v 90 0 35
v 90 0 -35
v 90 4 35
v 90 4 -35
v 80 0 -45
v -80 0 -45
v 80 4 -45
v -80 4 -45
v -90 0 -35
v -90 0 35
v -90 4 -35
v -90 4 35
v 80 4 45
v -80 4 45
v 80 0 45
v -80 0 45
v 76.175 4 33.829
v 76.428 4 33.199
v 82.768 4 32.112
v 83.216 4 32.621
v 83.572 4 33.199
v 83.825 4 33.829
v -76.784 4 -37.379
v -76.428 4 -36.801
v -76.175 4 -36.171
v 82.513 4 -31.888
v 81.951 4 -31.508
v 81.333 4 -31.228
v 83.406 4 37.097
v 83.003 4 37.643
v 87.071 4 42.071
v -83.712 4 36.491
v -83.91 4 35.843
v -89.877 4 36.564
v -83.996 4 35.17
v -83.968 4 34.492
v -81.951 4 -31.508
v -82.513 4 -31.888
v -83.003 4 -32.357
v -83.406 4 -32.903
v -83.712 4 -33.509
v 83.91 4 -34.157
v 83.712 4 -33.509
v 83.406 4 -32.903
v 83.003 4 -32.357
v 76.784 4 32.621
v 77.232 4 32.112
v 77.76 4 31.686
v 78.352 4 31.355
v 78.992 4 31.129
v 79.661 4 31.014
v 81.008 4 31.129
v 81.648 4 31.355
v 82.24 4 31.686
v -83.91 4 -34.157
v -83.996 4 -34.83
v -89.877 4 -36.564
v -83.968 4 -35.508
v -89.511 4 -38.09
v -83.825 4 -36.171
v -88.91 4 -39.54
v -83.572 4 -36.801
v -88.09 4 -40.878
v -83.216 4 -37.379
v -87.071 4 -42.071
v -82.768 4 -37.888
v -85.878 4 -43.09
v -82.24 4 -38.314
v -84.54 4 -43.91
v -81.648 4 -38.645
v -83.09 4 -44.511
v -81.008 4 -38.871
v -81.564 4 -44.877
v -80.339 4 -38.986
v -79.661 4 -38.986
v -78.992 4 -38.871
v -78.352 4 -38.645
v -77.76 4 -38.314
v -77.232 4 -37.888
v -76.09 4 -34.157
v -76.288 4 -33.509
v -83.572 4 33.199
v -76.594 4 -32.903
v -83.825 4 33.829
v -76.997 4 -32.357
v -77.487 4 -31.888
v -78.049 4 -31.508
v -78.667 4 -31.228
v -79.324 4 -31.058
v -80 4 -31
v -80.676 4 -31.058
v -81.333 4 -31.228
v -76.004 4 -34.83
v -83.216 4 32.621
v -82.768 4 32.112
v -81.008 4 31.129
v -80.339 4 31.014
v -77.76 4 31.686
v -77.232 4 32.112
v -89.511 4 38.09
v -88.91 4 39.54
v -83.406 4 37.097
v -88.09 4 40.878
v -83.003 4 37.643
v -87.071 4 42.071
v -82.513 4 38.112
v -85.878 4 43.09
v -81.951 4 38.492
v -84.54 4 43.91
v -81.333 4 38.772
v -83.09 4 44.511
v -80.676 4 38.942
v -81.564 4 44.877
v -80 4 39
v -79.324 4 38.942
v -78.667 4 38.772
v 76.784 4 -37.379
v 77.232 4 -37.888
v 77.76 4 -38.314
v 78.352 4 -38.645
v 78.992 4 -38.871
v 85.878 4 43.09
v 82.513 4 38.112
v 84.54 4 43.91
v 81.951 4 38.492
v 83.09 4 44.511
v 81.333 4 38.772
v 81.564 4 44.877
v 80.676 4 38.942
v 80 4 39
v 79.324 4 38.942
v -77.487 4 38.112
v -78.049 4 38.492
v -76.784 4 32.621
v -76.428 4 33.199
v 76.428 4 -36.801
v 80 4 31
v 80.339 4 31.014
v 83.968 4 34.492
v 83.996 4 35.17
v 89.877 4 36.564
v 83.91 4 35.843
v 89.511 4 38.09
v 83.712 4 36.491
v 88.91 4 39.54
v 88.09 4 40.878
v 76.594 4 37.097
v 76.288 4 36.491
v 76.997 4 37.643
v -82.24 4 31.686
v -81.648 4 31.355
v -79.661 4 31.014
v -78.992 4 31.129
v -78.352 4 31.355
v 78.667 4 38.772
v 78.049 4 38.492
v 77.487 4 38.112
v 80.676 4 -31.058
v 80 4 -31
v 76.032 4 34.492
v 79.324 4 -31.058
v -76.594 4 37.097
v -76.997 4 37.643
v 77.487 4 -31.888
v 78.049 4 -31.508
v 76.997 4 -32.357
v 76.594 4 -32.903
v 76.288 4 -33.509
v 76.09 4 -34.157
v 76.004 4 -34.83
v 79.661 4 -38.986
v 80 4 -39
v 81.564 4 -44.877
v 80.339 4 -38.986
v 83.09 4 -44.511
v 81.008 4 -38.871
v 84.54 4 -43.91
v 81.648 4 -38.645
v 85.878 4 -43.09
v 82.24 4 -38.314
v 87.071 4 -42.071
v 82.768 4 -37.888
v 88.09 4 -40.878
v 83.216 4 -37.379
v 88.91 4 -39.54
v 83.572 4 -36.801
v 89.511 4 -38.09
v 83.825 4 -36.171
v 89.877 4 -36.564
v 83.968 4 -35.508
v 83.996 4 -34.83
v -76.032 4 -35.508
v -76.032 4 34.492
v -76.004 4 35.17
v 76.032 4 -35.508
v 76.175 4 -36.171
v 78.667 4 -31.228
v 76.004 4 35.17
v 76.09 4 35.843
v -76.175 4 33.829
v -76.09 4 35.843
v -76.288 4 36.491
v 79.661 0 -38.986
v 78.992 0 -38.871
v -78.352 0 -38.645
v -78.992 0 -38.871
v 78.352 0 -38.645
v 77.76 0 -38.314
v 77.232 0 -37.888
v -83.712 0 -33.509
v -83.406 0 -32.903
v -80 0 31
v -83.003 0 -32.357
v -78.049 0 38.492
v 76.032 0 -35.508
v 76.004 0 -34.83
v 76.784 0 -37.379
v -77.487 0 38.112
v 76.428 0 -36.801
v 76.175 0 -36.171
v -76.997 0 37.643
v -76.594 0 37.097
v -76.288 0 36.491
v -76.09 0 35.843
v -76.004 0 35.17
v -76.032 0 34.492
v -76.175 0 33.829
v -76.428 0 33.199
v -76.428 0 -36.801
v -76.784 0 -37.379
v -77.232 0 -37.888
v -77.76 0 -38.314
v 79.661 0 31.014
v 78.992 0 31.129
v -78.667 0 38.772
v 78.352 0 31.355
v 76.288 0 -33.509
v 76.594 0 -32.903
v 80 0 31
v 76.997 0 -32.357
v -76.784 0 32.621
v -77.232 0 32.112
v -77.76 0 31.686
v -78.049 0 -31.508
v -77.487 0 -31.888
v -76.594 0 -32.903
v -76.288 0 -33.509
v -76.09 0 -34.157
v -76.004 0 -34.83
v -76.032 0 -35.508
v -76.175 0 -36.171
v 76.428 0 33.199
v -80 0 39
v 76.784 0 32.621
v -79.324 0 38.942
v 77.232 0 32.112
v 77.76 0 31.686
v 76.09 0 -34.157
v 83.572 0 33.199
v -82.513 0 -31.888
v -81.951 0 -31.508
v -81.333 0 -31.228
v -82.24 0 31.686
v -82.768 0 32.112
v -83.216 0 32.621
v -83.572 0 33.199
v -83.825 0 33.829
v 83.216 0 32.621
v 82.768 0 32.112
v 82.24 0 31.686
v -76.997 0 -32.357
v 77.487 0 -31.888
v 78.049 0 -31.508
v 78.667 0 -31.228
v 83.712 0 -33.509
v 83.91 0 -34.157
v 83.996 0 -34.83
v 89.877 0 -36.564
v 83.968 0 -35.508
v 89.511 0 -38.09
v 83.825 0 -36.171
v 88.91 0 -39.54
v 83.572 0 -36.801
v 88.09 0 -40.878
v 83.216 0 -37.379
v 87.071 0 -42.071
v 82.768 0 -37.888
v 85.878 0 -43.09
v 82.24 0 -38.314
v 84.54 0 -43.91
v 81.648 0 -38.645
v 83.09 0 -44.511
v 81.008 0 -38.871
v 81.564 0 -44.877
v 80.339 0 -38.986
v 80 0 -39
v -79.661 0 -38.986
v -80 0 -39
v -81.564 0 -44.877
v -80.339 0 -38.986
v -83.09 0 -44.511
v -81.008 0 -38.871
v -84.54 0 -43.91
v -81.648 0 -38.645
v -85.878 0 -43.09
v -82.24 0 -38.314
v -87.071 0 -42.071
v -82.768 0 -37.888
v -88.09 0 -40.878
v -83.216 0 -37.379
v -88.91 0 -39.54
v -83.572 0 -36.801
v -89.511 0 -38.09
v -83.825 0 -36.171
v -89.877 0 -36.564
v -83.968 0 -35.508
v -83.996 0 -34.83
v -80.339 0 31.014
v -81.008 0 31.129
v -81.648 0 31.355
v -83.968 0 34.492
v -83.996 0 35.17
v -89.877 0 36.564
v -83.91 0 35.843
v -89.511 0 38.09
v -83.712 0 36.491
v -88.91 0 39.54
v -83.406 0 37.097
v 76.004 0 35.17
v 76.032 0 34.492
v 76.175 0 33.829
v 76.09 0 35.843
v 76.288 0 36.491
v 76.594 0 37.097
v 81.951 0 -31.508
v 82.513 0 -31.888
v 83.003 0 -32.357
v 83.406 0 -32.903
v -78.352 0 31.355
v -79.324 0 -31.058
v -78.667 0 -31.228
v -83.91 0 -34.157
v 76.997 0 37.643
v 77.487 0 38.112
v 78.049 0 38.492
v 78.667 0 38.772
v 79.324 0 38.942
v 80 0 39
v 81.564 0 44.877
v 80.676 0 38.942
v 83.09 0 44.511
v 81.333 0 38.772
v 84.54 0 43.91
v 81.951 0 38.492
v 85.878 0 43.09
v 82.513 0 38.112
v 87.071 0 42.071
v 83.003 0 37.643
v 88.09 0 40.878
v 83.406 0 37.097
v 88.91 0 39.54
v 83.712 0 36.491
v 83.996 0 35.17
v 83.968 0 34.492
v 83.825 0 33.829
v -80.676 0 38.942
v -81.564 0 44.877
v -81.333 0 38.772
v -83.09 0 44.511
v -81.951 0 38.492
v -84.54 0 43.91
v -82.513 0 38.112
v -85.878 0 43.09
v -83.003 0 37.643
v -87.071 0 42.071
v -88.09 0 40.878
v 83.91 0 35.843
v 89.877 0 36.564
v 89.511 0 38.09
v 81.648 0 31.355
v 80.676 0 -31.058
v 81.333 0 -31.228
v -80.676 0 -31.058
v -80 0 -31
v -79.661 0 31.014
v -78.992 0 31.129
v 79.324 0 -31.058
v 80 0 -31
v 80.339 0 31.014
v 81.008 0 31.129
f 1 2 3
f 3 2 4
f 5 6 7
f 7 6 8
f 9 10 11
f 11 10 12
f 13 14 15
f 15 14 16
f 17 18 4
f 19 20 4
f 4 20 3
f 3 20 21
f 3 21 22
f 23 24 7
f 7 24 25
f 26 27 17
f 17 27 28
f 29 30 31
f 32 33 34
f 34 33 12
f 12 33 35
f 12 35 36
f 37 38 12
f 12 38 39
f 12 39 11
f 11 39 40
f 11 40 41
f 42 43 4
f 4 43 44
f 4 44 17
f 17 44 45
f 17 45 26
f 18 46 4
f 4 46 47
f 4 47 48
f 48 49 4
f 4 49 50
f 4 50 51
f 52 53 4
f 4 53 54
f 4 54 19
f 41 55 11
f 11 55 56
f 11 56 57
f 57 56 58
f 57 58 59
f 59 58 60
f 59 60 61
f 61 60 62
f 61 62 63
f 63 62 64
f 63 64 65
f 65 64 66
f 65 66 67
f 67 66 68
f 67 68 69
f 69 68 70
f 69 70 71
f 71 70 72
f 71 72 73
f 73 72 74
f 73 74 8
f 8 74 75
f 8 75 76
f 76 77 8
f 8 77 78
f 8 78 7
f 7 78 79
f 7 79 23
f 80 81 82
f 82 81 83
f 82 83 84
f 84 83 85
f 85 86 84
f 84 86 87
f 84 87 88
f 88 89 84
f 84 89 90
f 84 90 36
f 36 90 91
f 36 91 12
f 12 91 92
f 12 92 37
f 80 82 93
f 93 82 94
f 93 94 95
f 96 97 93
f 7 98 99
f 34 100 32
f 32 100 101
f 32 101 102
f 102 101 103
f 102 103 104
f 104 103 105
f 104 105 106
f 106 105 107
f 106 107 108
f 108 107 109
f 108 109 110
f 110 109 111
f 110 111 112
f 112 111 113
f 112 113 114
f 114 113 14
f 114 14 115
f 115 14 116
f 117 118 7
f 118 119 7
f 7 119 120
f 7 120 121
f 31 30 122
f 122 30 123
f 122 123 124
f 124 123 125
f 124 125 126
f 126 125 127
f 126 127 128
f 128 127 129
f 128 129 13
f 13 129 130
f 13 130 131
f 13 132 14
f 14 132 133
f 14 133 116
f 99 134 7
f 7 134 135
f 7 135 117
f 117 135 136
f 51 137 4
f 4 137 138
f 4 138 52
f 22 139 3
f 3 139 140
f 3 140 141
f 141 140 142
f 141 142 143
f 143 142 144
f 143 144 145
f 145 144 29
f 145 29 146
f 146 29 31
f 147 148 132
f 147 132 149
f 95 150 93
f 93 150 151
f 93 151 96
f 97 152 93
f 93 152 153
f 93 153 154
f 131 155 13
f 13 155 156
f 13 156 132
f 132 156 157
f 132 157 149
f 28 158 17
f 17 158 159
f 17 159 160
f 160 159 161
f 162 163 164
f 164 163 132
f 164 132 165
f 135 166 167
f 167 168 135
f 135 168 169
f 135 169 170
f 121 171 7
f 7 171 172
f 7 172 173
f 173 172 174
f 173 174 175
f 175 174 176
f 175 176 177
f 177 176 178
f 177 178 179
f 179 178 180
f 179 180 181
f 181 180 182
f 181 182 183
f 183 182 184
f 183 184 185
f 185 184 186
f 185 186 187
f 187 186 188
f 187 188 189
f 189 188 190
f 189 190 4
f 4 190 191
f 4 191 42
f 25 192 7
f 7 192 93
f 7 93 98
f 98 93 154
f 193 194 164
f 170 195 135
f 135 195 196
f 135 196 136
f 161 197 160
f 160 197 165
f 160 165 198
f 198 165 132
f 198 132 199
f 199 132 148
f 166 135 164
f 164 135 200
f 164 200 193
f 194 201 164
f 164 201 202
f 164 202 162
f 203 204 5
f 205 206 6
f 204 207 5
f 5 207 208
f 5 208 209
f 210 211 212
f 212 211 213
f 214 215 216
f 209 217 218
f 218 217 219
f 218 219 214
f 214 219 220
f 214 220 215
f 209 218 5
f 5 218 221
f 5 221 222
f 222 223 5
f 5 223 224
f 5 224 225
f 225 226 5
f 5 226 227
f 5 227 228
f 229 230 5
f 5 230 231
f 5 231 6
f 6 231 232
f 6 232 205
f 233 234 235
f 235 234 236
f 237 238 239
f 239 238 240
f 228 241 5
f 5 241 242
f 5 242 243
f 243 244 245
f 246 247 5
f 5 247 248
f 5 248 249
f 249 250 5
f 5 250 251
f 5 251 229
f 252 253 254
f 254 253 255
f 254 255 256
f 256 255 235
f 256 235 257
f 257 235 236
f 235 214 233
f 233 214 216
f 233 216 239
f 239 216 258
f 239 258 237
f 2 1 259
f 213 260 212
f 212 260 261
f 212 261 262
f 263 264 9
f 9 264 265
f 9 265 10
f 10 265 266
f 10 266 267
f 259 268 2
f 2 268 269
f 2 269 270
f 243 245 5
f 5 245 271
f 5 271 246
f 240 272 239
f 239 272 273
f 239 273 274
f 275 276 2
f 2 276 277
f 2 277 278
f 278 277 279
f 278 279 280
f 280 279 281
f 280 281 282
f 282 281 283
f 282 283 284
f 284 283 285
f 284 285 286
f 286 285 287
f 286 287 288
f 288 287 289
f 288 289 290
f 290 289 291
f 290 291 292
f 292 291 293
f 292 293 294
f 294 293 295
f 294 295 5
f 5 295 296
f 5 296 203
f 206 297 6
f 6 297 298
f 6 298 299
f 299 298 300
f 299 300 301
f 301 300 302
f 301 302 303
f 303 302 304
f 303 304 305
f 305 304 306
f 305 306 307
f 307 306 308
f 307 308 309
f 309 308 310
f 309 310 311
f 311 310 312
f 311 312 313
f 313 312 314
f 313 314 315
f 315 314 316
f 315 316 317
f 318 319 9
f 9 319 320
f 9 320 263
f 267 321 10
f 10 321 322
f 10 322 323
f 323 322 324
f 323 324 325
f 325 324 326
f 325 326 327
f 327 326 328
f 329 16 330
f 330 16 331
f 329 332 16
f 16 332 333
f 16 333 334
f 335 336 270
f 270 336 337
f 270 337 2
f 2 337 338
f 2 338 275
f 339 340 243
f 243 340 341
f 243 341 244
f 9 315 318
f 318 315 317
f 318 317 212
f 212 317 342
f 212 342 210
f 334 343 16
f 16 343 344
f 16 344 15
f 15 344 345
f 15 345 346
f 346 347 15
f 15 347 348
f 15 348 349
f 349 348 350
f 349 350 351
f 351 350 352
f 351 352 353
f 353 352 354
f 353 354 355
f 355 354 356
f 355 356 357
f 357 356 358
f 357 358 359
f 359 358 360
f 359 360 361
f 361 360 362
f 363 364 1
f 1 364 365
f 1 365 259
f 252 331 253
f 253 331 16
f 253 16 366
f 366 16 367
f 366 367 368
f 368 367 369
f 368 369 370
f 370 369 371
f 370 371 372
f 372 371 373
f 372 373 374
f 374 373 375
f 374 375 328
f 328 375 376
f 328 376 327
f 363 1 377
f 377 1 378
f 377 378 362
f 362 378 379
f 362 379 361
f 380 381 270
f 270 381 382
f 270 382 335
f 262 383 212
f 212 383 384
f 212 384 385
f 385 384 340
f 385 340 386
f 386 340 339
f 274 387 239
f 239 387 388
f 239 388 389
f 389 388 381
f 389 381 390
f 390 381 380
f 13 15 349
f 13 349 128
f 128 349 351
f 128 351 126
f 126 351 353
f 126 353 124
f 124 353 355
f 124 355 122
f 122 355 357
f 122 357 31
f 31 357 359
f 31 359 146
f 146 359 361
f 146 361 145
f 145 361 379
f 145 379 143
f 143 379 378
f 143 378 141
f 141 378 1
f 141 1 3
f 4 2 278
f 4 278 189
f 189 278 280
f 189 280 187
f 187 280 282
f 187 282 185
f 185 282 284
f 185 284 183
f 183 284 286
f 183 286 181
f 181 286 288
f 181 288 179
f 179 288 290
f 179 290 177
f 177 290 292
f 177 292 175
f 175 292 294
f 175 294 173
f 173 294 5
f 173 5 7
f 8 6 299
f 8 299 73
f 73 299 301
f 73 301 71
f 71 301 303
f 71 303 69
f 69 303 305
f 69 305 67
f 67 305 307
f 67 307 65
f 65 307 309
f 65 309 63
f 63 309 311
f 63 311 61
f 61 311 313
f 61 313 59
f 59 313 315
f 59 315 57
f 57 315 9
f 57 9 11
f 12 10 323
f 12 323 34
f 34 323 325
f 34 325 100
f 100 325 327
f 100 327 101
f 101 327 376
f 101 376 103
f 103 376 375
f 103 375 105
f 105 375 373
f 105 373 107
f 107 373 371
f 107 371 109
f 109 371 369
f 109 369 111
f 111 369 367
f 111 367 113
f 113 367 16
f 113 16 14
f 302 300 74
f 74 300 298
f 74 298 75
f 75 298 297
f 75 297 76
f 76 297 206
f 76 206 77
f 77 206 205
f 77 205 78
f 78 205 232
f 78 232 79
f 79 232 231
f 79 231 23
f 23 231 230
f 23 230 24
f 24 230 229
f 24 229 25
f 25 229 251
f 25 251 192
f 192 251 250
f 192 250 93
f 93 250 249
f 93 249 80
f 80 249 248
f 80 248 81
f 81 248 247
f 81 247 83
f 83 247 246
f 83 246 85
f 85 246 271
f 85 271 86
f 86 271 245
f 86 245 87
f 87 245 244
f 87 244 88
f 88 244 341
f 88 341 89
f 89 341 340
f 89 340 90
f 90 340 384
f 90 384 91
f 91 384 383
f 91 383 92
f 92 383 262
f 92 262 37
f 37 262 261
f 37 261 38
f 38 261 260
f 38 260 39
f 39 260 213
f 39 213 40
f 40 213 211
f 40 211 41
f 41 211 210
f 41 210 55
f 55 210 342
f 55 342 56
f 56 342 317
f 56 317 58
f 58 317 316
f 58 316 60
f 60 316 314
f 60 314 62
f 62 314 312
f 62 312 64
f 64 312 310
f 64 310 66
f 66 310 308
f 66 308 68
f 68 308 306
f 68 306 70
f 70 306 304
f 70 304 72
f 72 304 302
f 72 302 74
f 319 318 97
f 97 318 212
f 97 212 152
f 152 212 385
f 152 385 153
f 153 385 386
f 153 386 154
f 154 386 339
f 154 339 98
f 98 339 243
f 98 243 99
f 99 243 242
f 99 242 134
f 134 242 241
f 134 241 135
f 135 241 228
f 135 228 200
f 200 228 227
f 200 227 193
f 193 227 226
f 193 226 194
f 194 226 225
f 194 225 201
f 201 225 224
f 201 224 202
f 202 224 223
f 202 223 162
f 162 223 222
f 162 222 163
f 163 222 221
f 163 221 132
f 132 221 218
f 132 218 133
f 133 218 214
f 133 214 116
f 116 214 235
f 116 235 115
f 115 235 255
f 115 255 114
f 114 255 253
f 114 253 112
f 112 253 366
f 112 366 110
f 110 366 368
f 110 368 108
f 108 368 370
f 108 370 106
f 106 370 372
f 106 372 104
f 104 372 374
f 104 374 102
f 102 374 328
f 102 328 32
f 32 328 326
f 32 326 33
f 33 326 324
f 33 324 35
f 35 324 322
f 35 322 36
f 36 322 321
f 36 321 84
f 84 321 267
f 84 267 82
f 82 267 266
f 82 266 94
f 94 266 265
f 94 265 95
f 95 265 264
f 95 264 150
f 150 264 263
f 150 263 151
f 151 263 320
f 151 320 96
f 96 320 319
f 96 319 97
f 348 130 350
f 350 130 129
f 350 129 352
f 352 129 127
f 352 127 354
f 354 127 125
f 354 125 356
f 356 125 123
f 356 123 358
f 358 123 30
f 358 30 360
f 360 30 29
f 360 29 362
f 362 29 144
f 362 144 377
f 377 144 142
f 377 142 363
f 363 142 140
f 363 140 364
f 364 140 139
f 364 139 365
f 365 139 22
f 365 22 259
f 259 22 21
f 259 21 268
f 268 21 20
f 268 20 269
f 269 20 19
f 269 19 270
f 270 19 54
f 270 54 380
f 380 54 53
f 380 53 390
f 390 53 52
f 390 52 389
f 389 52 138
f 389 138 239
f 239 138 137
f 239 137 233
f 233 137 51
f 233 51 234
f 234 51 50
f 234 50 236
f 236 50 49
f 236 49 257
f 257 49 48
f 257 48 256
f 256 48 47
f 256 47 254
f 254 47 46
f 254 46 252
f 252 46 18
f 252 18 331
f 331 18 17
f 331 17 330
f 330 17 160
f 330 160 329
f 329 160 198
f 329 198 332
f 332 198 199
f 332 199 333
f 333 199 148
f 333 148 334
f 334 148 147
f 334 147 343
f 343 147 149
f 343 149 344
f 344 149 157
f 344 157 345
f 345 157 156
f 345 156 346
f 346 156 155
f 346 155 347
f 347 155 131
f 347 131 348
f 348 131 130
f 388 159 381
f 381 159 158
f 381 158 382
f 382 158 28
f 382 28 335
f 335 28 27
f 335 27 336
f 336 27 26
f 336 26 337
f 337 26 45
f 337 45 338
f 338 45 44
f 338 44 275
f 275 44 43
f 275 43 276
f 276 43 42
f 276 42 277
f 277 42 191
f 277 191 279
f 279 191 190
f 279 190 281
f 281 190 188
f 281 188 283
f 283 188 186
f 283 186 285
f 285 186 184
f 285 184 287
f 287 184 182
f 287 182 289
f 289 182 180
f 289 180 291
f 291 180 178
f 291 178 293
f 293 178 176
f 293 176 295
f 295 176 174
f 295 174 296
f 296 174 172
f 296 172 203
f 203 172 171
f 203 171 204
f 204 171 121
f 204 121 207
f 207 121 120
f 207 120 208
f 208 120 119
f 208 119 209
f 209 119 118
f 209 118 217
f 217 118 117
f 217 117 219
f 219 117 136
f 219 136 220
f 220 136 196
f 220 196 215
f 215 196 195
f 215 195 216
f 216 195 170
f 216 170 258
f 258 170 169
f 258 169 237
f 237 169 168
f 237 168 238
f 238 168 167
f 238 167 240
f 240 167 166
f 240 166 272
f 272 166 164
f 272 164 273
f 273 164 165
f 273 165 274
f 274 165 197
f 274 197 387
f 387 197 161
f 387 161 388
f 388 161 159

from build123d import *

# Parameters (mm, degrees)
CROQUIS2_W              = 180
CROQUIS2_H              = 90
SALIENTE_EXTRUIR1_DEPTH = 4
REDONDEO1_R             = 10
CORTAR_EXTRUIR2_REACH   = 102.703
CROQUIS4_R              = 4


with BuildPart() as part:
    # Croquis2 → Saliente-Extruir1 (new body)
    with BuildSketch(Plane(origin=(0, 0, 0), x_dir=(1, 0, 0), z_dir=(0, 1, 0))):
        Rectangle(CROQUIS2_W, CROQUIS2_H)
    extrude(amount=SALIENTE_EXTRUIR1_DEPTH)

    # Redondeo1
    redondeo1_edges = [part.edges().sort_by_distance(p)[0] for p in [
        (90, 2, 45),
        (-90, 2, 45),
        (-90, 2, -45),
        (90, 2, -45),
    ]]
    fillet(redondeo1_edges, radius=REDONDEO1_R)

    # Croquis4 → Cortar-Extruir2 (cut, up to next)
    with BuildSketch(Plane(origin=(0, 4, 0), x_dir=(1, 0, 0), z_dir=(0, 1, 0)), mode=Mode.PRIVATE) as cortar_extruir2_sk1:
        with Locations(Location((-80, 35, 0), (0, 0, 270))):
            Circle(CROQUIS4_R)
    cortar_extruir2_tool1 = extrude(cortar_extruir2_sk1.sketch, amount=-CORTAR_EXTRUIR2_REACH, mode=Mode.PRIVATE) & part.part
    # Croquis4 → Cortar-Extruir2 (cut, up to next)
    with BuildSketch(Plane(origin=(0, 4, 0), x_dir=(1, 0, 0), z_dir=(0, 1, 0)), mode=Mode.PRIVATE) as cortar_extruir2_sk2:
        with Locations(Location((-80, -35, 0), (0, 0, 270))):
            Circle(CROQUIS4_R)
    cortar_extruir2_tool2 = extrude(cortar_extruir2_sk2.sketch, amount=-CORTAR_EXTRUIR2_REACH, mode=Mode.PRIVATE) & part.part
    # Croquis4 → Cortar-Extruir2 (cut, up to next)
    with BuildSketch(Plane(origin=(0, 4, 0), x_dir=(1, 0, 0), z_dir=(0, 1, 0)), mode=Mode.PRIVATE) as cortar_extruir2_sk3:
        with Locations(Location((80, -35, 0), (0, 0, 90))):
            Circle(CROQUIS4_R)
    cortar_extruir2_tool3 = extrude(cortar_extruir2_sk3.sketch, amount=-CORTAR_EXTRUIR2_REACH, mode=Mode.PRIVATE) & part.part
    # Croquis4 → Cortar-Extruir2 (cut, up to next)
    with BuildSketch(Plane(origin=(0, 4, 0), x_dir=(1, 0, 0), z_dir=(0, 1, 0)), mode=Mode.PRIVATE) as cortar_extruir2_sk4:
        with Locations(Location((80, 35, 0), (0, 0, 90))):
            Circle(CROQUIS4_R)
    cortar_extruir2_tool4 = extrude(cortar_extruir2_sk4.sketch, amount=-CORTAR_EXTRUIR2_REACH, mode=Mode.PRIVATE) & part.part
    add(cortar_extruir2_tool1.solids().sort_by_distance((-80, 4, -35))[0], mode=Mode.SUBTRACT)
    add(cortar_extruir2_tool2.solids().sort_by_distance((-80, 4, 35))[0], mode=Mode.SUBTRACT)
    add(cortar_extruir2_tool3.solids().sort_by_distance((80, 4, 35))[0], mode=Mode.SUBTRACT)
    add(cortar_extruir2_tool4.solids().sort_by_distance((80, 4, -35))[0], mode=Mode.SUBTRACT)


solid = part.part
